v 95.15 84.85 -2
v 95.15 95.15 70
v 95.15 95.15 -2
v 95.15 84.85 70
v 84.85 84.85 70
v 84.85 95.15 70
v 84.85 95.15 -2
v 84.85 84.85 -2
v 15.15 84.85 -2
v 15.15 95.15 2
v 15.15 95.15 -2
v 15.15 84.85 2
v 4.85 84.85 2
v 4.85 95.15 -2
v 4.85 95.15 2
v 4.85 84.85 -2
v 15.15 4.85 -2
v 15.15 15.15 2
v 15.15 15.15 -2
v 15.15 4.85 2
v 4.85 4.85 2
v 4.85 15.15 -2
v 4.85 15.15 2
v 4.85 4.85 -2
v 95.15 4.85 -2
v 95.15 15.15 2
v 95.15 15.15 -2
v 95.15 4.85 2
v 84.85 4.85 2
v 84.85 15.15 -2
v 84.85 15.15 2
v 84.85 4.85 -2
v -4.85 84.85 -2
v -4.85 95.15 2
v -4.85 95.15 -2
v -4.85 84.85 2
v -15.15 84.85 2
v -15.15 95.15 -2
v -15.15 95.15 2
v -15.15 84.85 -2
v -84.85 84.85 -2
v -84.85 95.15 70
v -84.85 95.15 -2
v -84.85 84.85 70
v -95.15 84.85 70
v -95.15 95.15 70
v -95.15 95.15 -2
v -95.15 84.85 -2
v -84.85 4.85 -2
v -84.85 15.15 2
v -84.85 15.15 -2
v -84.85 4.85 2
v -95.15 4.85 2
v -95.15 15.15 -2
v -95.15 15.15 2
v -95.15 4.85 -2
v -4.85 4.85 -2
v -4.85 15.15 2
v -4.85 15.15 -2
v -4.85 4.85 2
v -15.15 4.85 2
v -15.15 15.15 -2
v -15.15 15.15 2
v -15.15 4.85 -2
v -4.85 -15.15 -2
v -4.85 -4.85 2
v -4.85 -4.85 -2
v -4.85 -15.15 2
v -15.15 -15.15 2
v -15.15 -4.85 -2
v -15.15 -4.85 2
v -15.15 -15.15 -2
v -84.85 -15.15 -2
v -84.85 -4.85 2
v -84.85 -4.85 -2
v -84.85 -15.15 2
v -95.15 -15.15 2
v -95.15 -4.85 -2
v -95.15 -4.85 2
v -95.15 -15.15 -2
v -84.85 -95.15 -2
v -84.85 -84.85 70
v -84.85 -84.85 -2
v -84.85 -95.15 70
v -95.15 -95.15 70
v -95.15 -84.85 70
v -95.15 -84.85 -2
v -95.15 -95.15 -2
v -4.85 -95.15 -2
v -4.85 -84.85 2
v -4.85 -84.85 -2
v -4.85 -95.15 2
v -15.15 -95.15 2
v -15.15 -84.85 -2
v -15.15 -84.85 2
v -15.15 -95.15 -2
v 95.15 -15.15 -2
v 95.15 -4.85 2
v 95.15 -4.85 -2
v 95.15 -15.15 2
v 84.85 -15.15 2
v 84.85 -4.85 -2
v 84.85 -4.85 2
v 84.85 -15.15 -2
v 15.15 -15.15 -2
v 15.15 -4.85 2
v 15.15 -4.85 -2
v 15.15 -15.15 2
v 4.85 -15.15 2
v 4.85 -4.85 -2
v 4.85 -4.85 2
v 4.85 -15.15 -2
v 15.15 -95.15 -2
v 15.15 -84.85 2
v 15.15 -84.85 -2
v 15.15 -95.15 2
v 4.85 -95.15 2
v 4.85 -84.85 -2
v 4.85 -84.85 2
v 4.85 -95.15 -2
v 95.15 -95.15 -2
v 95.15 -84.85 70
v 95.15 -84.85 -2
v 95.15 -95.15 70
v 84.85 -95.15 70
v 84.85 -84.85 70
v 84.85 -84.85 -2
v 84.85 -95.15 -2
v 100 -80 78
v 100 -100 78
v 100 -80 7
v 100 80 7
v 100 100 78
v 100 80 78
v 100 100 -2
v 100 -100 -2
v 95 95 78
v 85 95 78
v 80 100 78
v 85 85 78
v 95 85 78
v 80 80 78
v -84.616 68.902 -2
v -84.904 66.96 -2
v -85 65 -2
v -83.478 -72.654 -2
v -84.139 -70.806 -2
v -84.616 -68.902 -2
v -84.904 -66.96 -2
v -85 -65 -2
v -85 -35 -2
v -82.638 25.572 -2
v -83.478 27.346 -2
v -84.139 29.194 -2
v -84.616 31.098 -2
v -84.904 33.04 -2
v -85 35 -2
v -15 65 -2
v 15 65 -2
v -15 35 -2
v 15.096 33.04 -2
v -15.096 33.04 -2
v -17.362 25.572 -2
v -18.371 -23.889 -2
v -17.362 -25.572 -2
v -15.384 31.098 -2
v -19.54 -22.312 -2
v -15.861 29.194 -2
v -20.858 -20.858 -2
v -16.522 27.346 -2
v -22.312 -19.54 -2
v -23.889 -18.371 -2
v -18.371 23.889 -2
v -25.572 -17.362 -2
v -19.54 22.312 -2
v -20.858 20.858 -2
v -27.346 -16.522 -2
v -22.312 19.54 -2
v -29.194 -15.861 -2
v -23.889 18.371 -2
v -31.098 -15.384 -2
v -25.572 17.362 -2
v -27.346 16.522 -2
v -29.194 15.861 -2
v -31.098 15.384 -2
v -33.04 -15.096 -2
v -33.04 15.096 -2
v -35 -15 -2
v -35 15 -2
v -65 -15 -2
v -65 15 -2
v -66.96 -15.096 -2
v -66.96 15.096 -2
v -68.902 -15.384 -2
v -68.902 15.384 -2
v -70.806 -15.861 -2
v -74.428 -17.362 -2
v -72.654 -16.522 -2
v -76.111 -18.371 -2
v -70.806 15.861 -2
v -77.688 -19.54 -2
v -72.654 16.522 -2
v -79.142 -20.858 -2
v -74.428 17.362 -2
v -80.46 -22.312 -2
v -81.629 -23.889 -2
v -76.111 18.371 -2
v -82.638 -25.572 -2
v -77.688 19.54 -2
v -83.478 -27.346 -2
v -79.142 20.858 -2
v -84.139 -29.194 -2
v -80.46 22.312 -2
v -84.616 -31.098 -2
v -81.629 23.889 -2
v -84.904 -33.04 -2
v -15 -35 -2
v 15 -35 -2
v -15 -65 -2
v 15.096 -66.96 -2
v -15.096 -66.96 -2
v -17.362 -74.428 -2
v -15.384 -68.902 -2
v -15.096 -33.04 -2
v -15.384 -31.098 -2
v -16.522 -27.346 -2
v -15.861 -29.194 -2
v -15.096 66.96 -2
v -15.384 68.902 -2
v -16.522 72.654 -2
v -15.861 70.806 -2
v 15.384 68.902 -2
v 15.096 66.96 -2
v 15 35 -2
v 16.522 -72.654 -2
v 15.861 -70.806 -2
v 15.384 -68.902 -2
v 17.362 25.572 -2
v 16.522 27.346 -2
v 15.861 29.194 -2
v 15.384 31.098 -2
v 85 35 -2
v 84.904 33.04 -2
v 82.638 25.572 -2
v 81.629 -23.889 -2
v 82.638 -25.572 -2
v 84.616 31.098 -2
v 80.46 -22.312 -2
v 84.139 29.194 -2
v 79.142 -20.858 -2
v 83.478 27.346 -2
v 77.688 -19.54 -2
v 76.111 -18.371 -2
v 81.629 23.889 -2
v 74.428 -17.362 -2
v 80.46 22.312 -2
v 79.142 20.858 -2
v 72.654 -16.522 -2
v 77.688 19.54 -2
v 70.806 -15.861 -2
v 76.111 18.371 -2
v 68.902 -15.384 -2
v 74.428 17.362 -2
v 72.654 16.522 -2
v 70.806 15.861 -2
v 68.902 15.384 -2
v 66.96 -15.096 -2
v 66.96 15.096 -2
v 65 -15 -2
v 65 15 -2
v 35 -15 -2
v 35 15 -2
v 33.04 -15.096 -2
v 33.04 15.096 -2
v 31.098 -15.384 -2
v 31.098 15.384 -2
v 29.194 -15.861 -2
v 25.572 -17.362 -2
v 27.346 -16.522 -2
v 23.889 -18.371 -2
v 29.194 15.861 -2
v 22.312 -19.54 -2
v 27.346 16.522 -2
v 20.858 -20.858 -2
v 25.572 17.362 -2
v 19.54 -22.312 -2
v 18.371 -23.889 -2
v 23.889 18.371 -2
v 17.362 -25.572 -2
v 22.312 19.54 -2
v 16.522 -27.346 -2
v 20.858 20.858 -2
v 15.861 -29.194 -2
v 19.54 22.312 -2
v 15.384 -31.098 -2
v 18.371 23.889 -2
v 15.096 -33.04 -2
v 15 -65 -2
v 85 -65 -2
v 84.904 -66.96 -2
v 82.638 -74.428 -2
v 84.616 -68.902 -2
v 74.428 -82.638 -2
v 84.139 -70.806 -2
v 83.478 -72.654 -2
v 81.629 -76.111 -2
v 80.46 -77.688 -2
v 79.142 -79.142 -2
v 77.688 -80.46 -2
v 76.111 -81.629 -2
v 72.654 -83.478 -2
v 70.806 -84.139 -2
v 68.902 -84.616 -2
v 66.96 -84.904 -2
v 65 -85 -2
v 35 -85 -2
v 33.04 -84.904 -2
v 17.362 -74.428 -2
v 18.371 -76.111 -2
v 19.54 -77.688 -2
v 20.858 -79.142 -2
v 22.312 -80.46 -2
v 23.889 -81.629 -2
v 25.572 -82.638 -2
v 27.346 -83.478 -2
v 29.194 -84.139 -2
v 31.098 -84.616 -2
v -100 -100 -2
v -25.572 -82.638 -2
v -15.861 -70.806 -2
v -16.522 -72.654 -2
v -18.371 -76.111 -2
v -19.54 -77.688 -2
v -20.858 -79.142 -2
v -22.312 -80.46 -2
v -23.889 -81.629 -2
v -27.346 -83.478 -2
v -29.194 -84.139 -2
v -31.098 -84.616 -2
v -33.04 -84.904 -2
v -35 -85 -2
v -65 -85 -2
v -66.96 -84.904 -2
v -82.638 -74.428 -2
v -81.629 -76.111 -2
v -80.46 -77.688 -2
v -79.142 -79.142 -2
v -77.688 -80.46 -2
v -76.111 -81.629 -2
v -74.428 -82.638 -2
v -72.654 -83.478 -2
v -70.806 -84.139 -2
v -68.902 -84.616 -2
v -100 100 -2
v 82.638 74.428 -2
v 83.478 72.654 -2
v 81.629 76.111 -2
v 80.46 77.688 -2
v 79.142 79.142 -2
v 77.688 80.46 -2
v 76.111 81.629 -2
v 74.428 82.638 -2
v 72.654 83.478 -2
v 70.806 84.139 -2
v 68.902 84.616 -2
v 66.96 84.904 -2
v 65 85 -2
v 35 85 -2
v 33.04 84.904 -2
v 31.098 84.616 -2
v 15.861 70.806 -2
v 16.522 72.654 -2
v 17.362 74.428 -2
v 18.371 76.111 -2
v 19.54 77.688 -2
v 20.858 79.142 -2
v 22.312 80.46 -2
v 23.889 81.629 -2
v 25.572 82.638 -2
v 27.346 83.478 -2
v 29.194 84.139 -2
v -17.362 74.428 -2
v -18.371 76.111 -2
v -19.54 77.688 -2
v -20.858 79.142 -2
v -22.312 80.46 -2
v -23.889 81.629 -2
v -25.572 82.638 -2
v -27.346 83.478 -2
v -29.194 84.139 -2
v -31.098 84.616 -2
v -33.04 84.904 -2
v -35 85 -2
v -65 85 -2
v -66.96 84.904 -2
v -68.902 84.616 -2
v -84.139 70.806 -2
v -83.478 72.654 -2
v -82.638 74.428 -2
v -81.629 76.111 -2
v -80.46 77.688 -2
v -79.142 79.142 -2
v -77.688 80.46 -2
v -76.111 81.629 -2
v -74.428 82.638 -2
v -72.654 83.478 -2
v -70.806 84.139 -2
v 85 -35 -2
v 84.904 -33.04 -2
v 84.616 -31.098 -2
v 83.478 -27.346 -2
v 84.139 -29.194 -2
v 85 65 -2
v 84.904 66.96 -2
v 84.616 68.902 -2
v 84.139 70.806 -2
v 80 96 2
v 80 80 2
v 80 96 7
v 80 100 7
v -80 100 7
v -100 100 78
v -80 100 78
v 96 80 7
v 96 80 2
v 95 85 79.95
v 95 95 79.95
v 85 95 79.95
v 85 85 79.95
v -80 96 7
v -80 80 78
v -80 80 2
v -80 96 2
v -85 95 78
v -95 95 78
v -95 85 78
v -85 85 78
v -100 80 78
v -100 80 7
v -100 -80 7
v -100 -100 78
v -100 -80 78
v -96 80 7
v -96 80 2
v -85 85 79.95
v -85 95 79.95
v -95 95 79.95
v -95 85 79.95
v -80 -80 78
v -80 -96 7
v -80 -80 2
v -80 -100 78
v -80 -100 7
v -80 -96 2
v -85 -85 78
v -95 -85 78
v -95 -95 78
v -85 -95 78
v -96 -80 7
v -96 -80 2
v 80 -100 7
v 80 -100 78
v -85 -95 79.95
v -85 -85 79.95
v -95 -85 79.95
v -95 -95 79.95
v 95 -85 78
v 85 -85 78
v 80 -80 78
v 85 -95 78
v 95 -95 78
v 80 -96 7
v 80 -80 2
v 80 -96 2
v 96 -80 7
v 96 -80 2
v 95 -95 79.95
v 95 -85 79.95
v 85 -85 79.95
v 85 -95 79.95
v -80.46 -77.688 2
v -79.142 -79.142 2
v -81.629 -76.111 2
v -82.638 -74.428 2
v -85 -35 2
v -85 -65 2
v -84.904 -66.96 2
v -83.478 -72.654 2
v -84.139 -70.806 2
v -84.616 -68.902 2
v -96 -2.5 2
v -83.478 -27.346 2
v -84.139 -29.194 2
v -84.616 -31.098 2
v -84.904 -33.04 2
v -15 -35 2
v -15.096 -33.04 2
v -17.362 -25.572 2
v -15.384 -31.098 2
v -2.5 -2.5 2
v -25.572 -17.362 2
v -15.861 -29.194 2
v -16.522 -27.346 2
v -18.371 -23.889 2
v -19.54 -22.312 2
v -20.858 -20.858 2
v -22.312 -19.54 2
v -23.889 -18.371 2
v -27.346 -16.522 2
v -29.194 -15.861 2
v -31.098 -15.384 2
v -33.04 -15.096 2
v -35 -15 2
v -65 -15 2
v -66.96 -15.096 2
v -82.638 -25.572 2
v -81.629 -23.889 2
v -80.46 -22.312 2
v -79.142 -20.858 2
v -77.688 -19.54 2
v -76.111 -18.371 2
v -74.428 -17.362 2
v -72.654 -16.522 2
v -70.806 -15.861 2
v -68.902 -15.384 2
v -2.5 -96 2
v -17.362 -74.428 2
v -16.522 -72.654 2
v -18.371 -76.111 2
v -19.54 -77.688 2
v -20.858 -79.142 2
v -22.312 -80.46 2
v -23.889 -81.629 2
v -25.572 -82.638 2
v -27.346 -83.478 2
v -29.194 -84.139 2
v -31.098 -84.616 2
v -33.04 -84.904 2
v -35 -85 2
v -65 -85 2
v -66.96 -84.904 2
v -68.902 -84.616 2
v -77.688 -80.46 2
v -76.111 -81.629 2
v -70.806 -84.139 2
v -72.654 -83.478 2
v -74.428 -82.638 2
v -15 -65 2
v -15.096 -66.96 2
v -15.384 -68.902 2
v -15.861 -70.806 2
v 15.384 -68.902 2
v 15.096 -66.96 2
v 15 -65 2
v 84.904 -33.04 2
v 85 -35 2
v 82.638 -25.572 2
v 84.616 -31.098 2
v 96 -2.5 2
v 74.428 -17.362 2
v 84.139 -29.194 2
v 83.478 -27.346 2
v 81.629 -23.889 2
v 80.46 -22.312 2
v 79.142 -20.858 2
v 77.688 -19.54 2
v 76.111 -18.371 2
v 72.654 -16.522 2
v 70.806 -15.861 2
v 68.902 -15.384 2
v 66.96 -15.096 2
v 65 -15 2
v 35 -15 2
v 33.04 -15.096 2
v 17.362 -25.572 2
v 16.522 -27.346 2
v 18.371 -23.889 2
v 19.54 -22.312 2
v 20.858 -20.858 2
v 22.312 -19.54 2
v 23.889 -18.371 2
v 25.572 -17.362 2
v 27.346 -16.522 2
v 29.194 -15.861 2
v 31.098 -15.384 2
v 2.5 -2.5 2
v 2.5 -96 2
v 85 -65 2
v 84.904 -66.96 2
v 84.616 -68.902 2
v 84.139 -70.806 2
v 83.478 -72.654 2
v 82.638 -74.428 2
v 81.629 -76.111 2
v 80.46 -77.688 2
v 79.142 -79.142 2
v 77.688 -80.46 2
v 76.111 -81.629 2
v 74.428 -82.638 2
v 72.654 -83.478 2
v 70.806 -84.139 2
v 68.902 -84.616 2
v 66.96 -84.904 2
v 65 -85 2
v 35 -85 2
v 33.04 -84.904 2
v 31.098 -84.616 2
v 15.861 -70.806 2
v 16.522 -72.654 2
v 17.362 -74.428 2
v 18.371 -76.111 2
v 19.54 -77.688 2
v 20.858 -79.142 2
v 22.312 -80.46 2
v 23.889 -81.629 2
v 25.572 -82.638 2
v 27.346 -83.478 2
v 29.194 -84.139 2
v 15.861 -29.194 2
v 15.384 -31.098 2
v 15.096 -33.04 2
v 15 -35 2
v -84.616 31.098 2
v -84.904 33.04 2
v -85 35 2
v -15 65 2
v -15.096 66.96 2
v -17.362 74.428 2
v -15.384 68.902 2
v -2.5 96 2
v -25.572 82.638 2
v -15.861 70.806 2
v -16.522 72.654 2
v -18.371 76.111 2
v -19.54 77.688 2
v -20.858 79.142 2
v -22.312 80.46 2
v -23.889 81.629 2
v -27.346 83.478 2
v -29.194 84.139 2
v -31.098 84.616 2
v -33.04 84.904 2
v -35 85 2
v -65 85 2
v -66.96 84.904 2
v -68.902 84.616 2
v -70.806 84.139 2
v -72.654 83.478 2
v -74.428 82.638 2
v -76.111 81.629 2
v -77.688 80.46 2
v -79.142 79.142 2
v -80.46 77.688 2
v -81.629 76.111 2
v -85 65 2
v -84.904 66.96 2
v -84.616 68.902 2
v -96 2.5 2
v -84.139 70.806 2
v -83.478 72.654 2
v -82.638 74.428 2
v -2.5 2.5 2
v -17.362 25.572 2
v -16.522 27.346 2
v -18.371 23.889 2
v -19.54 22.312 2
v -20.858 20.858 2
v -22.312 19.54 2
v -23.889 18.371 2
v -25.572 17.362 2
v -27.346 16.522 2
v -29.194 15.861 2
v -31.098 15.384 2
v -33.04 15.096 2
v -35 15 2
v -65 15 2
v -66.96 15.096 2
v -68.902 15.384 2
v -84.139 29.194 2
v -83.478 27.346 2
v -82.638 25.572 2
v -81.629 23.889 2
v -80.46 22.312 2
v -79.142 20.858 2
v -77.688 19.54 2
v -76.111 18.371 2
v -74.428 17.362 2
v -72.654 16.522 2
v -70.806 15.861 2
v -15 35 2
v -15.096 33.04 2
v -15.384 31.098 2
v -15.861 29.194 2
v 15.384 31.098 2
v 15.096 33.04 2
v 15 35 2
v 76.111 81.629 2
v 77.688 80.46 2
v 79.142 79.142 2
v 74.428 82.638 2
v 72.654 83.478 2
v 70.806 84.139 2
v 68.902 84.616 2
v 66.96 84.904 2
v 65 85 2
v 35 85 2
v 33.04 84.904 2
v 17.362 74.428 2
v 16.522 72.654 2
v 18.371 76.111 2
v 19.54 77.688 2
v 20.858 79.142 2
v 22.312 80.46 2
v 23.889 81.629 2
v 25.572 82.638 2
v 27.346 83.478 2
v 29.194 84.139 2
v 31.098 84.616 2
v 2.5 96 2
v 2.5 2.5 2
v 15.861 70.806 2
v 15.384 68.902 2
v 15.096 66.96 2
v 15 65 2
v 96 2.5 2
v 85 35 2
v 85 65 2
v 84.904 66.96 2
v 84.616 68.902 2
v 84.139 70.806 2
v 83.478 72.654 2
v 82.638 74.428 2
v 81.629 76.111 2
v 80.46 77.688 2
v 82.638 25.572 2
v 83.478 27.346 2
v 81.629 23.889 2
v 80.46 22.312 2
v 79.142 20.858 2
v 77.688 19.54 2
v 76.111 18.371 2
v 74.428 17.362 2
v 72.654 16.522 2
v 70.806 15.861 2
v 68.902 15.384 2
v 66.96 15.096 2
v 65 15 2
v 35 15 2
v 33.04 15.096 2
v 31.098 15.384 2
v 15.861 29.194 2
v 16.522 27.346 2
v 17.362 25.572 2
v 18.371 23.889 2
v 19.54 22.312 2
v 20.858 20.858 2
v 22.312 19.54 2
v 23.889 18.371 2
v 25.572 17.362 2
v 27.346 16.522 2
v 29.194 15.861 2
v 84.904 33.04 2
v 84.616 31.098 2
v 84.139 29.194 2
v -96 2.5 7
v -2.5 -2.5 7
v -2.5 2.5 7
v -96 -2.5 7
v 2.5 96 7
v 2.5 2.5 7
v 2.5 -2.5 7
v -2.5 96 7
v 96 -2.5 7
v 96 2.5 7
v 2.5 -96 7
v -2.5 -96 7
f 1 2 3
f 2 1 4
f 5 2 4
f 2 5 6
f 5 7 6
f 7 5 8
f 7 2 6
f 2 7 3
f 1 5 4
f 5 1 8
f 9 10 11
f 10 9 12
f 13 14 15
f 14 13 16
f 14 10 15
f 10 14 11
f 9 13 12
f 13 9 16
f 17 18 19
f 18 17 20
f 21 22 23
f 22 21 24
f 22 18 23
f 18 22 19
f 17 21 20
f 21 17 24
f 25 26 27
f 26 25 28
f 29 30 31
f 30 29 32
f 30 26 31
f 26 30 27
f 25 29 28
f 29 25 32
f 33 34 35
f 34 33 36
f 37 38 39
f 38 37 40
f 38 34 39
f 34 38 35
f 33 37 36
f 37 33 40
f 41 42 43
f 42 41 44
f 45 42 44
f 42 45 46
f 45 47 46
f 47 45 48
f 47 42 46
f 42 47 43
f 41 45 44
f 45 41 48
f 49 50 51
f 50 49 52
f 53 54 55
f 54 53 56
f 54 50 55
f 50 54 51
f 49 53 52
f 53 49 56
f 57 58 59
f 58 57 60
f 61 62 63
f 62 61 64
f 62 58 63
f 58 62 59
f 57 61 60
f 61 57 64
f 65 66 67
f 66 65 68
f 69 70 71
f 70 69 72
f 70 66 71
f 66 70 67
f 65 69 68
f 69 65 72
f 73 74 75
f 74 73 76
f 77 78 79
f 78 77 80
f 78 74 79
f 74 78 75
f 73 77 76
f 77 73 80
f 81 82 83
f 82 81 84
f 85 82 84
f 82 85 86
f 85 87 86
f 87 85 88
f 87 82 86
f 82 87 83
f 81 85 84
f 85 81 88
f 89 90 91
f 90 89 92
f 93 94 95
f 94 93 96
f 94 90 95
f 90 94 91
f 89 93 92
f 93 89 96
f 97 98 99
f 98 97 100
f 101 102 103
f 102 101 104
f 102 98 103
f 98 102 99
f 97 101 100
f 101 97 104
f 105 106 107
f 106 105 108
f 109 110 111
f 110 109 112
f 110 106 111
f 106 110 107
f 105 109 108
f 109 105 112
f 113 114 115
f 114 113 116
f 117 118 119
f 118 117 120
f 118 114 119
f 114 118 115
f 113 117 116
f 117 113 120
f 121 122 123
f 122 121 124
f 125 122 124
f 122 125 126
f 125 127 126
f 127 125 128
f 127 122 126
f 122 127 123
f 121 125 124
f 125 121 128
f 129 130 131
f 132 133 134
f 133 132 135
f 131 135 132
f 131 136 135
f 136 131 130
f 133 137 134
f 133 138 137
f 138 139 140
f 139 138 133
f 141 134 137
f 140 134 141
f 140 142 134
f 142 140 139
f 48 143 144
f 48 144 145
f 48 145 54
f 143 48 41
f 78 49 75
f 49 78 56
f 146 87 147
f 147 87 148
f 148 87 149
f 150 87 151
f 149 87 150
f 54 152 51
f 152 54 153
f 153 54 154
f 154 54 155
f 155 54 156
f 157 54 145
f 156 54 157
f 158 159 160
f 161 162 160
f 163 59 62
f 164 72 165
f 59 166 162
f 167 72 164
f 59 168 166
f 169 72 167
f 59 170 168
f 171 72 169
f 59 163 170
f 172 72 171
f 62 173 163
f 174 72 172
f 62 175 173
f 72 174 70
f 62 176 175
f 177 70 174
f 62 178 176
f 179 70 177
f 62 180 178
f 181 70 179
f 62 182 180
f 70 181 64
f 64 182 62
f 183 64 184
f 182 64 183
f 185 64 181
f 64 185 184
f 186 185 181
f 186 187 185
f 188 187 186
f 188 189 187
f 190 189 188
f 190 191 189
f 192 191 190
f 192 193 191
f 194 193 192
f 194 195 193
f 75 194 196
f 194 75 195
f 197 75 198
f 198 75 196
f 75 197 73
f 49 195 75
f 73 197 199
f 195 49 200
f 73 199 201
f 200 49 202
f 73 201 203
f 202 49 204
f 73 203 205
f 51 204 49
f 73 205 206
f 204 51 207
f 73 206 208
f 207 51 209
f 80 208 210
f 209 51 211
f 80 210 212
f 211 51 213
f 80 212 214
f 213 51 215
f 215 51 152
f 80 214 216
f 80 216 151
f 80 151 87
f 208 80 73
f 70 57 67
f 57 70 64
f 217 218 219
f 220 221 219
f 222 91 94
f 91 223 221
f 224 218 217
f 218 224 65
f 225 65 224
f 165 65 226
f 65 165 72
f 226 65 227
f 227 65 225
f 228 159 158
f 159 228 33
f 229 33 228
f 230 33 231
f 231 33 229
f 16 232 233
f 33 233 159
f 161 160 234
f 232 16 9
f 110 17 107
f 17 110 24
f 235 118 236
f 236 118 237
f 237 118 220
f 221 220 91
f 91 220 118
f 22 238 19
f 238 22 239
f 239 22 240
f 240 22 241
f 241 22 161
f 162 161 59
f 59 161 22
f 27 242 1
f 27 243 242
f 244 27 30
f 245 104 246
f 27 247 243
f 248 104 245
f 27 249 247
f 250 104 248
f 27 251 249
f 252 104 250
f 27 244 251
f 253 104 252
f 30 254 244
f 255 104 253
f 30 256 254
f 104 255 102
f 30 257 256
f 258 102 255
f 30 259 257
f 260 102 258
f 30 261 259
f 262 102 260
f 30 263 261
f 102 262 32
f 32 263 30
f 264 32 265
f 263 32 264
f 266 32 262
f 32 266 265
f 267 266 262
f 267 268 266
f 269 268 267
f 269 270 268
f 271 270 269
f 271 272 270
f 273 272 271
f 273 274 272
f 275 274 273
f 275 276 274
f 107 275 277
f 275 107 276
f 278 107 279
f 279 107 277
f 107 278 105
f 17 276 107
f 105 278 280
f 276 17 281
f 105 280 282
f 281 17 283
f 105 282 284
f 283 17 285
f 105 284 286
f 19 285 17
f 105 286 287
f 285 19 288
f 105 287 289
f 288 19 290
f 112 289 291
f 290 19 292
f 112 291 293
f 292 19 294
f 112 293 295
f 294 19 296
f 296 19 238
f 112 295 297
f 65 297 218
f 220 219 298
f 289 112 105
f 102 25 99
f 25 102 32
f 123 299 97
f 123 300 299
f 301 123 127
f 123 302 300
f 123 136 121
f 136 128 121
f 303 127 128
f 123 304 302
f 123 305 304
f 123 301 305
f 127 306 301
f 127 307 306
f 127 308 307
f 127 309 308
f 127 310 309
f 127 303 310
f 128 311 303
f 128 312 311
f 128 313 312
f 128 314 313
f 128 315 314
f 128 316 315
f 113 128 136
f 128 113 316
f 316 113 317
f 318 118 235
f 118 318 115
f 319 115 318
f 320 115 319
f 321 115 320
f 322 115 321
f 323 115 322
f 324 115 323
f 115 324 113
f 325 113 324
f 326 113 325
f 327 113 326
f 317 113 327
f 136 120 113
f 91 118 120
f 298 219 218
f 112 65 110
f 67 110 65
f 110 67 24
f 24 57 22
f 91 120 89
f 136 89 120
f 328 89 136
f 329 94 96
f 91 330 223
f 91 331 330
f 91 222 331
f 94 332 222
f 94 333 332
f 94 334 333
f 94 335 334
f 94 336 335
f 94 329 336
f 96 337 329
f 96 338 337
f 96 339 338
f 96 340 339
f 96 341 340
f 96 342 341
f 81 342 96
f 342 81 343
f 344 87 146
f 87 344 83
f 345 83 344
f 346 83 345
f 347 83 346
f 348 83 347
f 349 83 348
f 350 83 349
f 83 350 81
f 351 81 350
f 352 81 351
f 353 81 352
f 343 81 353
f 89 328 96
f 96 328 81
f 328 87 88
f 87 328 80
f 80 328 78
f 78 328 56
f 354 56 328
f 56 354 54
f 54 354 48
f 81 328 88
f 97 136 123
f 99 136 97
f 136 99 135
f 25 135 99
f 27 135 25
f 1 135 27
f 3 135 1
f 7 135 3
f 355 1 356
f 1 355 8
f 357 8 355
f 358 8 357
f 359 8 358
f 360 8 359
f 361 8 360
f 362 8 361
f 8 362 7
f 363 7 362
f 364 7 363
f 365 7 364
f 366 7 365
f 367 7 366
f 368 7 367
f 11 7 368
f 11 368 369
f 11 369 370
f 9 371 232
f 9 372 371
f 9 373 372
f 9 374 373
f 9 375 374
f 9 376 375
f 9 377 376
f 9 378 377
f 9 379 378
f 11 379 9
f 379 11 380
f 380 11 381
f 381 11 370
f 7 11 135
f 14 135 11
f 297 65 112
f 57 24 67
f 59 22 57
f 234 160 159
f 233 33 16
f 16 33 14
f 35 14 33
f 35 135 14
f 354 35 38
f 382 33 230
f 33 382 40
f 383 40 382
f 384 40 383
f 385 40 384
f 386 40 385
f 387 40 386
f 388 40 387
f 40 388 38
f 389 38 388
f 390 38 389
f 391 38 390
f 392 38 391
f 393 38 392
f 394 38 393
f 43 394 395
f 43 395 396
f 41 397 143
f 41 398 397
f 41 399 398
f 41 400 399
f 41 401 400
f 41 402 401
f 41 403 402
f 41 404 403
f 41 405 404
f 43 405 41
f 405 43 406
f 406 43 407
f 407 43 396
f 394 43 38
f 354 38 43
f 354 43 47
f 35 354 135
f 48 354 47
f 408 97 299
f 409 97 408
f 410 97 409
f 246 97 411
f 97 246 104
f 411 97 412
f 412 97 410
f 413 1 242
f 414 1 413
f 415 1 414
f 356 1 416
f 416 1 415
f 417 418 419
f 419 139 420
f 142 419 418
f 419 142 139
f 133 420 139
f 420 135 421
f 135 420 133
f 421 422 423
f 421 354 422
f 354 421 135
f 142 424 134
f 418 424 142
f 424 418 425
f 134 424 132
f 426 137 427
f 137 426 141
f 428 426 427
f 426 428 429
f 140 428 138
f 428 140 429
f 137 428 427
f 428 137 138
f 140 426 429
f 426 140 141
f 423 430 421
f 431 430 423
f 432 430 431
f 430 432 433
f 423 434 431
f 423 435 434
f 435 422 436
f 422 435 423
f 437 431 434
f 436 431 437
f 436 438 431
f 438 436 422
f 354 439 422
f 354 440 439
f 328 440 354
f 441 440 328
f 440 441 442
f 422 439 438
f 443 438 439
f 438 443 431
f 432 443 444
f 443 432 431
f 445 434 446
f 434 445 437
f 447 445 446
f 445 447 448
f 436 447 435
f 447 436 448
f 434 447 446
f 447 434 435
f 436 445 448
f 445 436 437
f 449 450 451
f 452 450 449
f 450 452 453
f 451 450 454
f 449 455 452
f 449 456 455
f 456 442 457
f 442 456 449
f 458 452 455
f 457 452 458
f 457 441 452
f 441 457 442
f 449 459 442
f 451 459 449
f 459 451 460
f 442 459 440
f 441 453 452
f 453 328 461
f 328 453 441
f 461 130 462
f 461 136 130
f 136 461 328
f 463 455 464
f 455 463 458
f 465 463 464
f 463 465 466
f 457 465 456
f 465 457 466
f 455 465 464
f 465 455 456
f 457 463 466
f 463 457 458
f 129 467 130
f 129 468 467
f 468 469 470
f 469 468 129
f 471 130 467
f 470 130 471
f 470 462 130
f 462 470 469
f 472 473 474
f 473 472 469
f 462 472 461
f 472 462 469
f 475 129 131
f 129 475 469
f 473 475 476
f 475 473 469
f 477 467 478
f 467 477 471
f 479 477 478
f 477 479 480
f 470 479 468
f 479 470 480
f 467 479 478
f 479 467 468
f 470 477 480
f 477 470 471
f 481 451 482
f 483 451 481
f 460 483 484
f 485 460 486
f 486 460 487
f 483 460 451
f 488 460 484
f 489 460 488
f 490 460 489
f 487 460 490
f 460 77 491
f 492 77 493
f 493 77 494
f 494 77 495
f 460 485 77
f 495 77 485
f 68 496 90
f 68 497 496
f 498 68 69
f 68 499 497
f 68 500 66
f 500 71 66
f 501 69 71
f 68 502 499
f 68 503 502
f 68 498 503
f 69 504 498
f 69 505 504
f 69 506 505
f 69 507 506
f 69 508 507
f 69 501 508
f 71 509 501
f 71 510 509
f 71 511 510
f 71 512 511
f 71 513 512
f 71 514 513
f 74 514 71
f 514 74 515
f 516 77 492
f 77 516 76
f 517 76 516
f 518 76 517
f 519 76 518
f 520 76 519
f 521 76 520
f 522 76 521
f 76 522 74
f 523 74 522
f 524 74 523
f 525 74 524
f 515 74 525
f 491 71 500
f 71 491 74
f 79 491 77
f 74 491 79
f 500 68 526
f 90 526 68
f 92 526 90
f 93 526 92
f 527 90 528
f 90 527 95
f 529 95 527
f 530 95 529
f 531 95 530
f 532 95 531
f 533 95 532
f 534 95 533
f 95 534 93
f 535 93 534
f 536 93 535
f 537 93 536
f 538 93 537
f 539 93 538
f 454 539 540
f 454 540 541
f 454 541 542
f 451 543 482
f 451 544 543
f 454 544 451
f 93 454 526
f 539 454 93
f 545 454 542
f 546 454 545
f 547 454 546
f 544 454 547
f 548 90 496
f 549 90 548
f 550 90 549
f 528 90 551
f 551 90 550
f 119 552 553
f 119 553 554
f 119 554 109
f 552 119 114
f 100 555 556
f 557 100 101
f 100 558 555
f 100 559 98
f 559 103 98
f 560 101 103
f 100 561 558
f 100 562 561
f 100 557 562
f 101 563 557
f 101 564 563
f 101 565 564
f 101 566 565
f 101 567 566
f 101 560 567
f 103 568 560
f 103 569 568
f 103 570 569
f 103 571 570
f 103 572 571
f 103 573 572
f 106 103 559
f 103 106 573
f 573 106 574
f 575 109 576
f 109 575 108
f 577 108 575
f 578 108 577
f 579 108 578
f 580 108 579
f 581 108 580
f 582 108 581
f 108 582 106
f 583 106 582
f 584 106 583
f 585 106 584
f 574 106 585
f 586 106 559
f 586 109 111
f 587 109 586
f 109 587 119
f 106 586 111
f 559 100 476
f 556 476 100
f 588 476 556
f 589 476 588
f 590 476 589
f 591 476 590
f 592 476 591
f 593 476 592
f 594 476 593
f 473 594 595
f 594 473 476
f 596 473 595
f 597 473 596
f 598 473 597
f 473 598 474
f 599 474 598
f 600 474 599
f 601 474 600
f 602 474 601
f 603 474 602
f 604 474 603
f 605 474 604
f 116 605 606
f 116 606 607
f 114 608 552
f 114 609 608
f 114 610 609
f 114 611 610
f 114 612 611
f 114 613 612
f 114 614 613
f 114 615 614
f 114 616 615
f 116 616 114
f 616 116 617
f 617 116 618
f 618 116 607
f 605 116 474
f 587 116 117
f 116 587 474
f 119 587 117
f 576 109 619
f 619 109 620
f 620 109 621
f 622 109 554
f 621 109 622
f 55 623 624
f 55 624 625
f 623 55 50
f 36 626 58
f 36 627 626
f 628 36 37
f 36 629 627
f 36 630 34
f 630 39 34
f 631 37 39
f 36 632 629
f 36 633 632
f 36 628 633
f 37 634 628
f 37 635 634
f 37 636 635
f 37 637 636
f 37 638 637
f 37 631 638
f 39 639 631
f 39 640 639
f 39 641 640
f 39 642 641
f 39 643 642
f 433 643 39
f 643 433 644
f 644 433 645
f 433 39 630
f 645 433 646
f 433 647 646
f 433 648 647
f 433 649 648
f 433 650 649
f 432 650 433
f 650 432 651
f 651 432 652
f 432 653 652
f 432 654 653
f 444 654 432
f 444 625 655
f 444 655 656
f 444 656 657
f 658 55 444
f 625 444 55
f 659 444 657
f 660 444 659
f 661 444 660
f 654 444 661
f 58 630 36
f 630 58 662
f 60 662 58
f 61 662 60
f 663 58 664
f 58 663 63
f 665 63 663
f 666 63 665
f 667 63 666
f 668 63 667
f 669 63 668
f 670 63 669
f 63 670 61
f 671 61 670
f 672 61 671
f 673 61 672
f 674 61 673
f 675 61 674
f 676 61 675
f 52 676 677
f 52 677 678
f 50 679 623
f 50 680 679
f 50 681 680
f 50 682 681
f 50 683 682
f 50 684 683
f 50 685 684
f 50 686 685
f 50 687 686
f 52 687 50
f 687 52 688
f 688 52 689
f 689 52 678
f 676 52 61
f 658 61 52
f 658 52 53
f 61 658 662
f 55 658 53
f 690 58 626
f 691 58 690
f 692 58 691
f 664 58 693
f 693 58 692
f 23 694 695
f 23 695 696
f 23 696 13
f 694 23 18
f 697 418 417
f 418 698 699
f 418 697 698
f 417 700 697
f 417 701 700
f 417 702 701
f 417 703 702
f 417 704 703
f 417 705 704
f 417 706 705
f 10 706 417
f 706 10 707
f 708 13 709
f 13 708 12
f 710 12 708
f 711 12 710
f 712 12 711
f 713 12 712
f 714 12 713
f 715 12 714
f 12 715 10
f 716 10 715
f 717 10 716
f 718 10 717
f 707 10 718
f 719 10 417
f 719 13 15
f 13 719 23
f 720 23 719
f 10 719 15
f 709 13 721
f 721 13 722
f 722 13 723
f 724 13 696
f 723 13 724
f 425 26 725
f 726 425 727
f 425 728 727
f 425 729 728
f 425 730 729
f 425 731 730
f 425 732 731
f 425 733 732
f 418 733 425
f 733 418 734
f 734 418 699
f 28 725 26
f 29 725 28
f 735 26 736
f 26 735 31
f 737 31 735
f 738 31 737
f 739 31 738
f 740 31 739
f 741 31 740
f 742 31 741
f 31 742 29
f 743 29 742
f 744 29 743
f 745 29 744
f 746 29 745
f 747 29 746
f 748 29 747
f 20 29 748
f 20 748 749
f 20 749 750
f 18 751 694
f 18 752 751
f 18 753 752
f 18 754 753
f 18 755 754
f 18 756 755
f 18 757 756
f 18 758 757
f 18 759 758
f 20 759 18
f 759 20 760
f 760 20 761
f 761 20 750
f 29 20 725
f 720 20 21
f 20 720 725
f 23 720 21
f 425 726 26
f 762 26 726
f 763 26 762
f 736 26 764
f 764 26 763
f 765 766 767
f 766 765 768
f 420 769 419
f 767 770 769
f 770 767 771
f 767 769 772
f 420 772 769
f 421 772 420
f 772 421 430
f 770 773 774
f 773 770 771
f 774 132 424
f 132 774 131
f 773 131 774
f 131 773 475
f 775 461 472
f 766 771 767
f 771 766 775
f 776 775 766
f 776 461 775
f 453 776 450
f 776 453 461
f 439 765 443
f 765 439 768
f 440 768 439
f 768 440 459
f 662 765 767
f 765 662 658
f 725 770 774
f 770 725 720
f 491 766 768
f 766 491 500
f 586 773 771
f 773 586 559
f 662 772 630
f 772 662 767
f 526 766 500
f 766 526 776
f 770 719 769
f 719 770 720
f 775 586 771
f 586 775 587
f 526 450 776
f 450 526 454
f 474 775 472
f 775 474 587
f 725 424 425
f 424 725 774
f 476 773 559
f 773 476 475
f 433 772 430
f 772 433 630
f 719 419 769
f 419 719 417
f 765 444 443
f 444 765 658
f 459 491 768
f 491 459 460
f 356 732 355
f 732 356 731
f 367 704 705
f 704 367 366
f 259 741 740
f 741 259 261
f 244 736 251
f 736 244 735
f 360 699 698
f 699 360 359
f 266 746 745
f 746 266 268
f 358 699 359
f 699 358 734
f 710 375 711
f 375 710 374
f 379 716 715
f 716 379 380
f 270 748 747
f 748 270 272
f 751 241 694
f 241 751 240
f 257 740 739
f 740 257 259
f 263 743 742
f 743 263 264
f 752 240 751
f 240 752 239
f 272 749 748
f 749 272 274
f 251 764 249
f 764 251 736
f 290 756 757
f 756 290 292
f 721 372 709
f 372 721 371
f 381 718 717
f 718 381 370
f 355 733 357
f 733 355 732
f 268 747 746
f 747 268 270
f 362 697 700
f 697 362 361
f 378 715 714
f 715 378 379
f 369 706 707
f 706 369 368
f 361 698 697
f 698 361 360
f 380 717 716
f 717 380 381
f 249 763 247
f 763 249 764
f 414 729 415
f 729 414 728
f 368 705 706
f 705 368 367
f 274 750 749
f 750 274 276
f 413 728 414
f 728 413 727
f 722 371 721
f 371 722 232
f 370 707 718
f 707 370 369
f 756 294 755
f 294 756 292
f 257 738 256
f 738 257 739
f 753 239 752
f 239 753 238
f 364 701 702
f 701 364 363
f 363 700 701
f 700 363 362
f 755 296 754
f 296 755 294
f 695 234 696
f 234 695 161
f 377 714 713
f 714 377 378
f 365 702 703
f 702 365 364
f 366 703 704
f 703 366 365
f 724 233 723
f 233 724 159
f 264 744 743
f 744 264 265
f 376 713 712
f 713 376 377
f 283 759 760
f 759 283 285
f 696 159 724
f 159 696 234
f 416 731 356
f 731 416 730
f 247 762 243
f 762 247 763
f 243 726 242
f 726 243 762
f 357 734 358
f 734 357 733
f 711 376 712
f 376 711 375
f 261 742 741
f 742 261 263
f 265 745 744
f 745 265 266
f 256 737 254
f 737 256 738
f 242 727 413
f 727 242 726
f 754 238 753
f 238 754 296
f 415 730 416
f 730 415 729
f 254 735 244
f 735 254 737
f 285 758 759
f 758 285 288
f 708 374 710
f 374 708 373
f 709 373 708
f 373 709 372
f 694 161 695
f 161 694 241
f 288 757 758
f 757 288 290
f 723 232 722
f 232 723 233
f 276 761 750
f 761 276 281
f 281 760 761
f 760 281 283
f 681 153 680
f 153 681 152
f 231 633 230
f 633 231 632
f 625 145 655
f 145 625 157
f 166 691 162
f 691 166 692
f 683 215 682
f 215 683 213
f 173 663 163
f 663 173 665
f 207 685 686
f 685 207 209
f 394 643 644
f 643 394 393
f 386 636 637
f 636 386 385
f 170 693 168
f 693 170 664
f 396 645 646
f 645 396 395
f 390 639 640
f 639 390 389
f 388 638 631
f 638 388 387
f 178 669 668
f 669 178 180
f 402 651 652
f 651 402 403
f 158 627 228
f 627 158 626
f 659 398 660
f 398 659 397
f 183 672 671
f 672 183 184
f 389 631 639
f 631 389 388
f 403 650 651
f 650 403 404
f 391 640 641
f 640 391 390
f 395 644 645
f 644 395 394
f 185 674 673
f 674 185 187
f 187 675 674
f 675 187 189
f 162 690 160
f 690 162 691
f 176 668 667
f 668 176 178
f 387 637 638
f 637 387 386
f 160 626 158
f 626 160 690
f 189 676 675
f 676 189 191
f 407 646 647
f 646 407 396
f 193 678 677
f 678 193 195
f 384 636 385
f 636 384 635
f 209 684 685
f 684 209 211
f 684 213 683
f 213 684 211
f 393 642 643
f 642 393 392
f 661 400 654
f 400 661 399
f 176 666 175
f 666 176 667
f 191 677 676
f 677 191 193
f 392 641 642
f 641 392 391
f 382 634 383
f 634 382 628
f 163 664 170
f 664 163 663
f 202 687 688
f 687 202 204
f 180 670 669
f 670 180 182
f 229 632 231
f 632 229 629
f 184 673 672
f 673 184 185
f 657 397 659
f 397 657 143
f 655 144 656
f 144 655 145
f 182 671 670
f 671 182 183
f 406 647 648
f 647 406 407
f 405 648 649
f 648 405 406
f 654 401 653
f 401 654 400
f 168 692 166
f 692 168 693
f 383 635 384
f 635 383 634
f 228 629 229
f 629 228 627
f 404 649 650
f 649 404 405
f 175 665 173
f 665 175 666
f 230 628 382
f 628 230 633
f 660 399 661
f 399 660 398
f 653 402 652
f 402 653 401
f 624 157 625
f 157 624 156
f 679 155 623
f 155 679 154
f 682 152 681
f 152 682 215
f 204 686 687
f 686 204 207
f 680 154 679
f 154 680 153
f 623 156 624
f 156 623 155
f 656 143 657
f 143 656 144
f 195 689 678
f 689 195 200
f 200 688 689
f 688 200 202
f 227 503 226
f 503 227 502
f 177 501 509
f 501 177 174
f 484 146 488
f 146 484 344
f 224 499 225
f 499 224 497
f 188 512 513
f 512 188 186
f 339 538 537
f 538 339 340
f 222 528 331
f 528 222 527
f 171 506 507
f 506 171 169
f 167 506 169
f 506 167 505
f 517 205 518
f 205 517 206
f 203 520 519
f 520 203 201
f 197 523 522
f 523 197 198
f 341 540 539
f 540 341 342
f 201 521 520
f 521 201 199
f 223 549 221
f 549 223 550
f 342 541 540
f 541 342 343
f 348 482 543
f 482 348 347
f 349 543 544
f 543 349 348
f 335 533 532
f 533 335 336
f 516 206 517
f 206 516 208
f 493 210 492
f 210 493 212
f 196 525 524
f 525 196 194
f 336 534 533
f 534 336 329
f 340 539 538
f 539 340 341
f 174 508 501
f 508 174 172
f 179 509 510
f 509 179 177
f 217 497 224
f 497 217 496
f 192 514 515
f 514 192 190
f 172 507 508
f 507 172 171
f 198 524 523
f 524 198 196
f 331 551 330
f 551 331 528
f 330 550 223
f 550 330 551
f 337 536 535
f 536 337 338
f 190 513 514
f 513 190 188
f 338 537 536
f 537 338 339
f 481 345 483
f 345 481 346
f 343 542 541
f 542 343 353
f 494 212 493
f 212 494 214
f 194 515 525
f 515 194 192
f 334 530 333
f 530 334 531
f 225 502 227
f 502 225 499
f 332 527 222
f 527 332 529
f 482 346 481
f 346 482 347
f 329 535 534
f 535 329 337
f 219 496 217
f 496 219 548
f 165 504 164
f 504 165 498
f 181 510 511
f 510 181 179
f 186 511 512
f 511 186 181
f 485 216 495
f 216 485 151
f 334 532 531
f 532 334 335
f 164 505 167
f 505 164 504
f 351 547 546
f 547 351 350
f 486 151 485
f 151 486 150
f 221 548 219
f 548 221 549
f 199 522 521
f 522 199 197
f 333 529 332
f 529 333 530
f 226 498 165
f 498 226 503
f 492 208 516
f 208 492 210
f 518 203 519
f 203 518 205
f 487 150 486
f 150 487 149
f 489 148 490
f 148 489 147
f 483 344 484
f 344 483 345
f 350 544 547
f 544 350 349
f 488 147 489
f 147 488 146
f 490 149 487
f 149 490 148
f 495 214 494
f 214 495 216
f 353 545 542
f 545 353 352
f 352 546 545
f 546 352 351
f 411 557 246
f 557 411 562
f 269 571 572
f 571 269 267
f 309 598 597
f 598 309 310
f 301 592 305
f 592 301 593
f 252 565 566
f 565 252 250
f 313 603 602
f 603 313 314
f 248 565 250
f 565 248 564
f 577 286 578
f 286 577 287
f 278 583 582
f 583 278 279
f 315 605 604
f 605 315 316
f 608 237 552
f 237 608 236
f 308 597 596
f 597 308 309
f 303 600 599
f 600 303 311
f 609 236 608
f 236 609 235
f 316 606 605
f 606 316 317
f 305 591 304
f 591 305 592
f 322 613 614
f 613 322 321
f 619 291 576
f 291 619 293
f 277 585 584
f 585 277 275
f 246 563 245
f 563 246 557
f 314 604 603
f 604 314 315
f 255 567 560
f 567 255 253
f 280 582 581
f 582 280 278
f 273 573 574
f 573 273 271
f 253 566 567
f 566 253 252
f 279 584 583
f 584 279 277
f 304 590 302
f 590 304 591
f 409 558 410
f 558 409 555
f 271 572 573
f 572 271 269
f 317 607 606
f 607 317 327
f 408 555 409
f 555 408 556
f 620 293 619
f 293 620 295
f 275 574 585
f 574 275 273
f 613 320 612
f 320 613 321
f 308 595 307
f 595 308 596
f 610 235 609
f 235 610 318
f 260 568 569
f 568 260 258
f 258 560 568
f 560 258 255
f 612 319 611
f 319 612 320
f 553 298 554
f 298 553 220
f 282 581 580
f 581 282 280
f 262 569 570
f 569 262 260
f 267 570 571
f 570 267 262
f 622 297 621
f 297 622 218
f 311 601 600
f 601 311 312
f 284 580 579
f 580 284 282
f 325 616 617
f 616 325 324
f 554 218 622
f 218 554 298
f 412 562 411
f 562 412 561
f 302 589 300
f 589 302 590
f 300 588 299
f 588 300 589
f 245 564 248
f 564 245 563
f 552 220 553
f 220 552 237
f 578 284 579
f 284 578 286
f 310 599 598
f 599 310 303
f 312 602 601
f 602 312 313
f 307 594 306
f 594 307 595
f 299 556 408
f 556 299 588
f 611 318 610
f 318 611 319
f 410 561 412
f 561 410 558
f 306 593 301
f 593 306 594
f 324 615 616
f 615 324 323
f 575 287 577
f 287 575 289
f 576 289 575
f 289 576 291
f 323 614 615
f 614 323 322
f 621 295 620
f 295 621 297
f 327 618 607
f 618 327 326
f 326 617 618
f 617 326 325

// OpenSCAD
// file: math.scad
/* Example usage:
for (i=mirror4XY(midpoint=[0,0,0], offsetX=90, offsetY=90)) {
    translate(v=i)
        something();
}
*/
function mirror4XY(midpoint, offsetX, offsetY)  =
    [[midpoint[0]+offsetX, midpoint[1]+offsetY, midpoint[2]],
        [midpoint[0]-offsetX, midpoint[1]+offsetY, midpoint[2]],
        [midpoint[0]-offsetX, midpoint[1]-offsetY, midpoint[2]],
        [midpoint[0]+offsetX, midpoint[1]-offsetY, midpoint[2]]];
// main file
$fn=64;
include <./math.scad>

eps=0.1;

module leg() {
    mainLength = 80;
    upperDim = 20;
    innerDim = 10;
    
    translate(v=[0,0,mainLength/2]) {
      cube(size=[upperDim, upperDim, mainLength], center=true);
    
      translate(v=[0,0,mainLength/2 + innerDim/8-0.3])
        cube(size=[innerDim, innerDim, innerDim/4-0.5], center=true);

    }
}


module base() {

  difference() {
    union() {
      cube(size=[200,200,4], center=true);

      // legs
      for (i=mirror4XY(midpoint=[0,0,-2], offsetX=90, offsetY=90)) {
        translate(v=i)
          leg();
      }

      // base support
      translate(v=[0,0,4.5])
        cube(size=[200,5,5], center=true);

      rotate(a=[0,0,90])
        translate(v=[0,0,4.5])
        cube(size=[200,5,5], center=true);

      translate(v=[0,-98,4.5])
        cube(size=[200,4,5], center=true);

      rotate(a=[0,0,90])
        translate(v=[0,-98,4.5])
        cube(size=[200,4,5], center=true);

      rotate(a=[0,0,180])
        translate(v=[0,-98,4.5])
        cube(size=[200,4,5], center=true);

      rotate(a=[0,0,270])
        translate(v=[0,-98,4.5])
        cube(size=[200,4,5], center=true);

    }
        
    union() {

      
      // lug holes
      for (i=mirror4XY(midpoint=[0,0,0], offsetX=50, offsetY=50)) {
        for (j=mirror4XY(midpoint=i, offsetX=40, offsetY=40)) {
          translate(v=j)
            cube(size=[10+0.3,10+0.3,140], center=true);
        }
      }
      
      // decorative perforations
      for (i=mirror4XY(midpoint=[0,0,0], offsetX=50, offsetY=50)) {
        translate(v=i)
          minkowski() {
          cube(size=[30,30,50], center=true);
          cylinder(r=20, h=10);
        }
      }
          
    }
  }
}


base();
